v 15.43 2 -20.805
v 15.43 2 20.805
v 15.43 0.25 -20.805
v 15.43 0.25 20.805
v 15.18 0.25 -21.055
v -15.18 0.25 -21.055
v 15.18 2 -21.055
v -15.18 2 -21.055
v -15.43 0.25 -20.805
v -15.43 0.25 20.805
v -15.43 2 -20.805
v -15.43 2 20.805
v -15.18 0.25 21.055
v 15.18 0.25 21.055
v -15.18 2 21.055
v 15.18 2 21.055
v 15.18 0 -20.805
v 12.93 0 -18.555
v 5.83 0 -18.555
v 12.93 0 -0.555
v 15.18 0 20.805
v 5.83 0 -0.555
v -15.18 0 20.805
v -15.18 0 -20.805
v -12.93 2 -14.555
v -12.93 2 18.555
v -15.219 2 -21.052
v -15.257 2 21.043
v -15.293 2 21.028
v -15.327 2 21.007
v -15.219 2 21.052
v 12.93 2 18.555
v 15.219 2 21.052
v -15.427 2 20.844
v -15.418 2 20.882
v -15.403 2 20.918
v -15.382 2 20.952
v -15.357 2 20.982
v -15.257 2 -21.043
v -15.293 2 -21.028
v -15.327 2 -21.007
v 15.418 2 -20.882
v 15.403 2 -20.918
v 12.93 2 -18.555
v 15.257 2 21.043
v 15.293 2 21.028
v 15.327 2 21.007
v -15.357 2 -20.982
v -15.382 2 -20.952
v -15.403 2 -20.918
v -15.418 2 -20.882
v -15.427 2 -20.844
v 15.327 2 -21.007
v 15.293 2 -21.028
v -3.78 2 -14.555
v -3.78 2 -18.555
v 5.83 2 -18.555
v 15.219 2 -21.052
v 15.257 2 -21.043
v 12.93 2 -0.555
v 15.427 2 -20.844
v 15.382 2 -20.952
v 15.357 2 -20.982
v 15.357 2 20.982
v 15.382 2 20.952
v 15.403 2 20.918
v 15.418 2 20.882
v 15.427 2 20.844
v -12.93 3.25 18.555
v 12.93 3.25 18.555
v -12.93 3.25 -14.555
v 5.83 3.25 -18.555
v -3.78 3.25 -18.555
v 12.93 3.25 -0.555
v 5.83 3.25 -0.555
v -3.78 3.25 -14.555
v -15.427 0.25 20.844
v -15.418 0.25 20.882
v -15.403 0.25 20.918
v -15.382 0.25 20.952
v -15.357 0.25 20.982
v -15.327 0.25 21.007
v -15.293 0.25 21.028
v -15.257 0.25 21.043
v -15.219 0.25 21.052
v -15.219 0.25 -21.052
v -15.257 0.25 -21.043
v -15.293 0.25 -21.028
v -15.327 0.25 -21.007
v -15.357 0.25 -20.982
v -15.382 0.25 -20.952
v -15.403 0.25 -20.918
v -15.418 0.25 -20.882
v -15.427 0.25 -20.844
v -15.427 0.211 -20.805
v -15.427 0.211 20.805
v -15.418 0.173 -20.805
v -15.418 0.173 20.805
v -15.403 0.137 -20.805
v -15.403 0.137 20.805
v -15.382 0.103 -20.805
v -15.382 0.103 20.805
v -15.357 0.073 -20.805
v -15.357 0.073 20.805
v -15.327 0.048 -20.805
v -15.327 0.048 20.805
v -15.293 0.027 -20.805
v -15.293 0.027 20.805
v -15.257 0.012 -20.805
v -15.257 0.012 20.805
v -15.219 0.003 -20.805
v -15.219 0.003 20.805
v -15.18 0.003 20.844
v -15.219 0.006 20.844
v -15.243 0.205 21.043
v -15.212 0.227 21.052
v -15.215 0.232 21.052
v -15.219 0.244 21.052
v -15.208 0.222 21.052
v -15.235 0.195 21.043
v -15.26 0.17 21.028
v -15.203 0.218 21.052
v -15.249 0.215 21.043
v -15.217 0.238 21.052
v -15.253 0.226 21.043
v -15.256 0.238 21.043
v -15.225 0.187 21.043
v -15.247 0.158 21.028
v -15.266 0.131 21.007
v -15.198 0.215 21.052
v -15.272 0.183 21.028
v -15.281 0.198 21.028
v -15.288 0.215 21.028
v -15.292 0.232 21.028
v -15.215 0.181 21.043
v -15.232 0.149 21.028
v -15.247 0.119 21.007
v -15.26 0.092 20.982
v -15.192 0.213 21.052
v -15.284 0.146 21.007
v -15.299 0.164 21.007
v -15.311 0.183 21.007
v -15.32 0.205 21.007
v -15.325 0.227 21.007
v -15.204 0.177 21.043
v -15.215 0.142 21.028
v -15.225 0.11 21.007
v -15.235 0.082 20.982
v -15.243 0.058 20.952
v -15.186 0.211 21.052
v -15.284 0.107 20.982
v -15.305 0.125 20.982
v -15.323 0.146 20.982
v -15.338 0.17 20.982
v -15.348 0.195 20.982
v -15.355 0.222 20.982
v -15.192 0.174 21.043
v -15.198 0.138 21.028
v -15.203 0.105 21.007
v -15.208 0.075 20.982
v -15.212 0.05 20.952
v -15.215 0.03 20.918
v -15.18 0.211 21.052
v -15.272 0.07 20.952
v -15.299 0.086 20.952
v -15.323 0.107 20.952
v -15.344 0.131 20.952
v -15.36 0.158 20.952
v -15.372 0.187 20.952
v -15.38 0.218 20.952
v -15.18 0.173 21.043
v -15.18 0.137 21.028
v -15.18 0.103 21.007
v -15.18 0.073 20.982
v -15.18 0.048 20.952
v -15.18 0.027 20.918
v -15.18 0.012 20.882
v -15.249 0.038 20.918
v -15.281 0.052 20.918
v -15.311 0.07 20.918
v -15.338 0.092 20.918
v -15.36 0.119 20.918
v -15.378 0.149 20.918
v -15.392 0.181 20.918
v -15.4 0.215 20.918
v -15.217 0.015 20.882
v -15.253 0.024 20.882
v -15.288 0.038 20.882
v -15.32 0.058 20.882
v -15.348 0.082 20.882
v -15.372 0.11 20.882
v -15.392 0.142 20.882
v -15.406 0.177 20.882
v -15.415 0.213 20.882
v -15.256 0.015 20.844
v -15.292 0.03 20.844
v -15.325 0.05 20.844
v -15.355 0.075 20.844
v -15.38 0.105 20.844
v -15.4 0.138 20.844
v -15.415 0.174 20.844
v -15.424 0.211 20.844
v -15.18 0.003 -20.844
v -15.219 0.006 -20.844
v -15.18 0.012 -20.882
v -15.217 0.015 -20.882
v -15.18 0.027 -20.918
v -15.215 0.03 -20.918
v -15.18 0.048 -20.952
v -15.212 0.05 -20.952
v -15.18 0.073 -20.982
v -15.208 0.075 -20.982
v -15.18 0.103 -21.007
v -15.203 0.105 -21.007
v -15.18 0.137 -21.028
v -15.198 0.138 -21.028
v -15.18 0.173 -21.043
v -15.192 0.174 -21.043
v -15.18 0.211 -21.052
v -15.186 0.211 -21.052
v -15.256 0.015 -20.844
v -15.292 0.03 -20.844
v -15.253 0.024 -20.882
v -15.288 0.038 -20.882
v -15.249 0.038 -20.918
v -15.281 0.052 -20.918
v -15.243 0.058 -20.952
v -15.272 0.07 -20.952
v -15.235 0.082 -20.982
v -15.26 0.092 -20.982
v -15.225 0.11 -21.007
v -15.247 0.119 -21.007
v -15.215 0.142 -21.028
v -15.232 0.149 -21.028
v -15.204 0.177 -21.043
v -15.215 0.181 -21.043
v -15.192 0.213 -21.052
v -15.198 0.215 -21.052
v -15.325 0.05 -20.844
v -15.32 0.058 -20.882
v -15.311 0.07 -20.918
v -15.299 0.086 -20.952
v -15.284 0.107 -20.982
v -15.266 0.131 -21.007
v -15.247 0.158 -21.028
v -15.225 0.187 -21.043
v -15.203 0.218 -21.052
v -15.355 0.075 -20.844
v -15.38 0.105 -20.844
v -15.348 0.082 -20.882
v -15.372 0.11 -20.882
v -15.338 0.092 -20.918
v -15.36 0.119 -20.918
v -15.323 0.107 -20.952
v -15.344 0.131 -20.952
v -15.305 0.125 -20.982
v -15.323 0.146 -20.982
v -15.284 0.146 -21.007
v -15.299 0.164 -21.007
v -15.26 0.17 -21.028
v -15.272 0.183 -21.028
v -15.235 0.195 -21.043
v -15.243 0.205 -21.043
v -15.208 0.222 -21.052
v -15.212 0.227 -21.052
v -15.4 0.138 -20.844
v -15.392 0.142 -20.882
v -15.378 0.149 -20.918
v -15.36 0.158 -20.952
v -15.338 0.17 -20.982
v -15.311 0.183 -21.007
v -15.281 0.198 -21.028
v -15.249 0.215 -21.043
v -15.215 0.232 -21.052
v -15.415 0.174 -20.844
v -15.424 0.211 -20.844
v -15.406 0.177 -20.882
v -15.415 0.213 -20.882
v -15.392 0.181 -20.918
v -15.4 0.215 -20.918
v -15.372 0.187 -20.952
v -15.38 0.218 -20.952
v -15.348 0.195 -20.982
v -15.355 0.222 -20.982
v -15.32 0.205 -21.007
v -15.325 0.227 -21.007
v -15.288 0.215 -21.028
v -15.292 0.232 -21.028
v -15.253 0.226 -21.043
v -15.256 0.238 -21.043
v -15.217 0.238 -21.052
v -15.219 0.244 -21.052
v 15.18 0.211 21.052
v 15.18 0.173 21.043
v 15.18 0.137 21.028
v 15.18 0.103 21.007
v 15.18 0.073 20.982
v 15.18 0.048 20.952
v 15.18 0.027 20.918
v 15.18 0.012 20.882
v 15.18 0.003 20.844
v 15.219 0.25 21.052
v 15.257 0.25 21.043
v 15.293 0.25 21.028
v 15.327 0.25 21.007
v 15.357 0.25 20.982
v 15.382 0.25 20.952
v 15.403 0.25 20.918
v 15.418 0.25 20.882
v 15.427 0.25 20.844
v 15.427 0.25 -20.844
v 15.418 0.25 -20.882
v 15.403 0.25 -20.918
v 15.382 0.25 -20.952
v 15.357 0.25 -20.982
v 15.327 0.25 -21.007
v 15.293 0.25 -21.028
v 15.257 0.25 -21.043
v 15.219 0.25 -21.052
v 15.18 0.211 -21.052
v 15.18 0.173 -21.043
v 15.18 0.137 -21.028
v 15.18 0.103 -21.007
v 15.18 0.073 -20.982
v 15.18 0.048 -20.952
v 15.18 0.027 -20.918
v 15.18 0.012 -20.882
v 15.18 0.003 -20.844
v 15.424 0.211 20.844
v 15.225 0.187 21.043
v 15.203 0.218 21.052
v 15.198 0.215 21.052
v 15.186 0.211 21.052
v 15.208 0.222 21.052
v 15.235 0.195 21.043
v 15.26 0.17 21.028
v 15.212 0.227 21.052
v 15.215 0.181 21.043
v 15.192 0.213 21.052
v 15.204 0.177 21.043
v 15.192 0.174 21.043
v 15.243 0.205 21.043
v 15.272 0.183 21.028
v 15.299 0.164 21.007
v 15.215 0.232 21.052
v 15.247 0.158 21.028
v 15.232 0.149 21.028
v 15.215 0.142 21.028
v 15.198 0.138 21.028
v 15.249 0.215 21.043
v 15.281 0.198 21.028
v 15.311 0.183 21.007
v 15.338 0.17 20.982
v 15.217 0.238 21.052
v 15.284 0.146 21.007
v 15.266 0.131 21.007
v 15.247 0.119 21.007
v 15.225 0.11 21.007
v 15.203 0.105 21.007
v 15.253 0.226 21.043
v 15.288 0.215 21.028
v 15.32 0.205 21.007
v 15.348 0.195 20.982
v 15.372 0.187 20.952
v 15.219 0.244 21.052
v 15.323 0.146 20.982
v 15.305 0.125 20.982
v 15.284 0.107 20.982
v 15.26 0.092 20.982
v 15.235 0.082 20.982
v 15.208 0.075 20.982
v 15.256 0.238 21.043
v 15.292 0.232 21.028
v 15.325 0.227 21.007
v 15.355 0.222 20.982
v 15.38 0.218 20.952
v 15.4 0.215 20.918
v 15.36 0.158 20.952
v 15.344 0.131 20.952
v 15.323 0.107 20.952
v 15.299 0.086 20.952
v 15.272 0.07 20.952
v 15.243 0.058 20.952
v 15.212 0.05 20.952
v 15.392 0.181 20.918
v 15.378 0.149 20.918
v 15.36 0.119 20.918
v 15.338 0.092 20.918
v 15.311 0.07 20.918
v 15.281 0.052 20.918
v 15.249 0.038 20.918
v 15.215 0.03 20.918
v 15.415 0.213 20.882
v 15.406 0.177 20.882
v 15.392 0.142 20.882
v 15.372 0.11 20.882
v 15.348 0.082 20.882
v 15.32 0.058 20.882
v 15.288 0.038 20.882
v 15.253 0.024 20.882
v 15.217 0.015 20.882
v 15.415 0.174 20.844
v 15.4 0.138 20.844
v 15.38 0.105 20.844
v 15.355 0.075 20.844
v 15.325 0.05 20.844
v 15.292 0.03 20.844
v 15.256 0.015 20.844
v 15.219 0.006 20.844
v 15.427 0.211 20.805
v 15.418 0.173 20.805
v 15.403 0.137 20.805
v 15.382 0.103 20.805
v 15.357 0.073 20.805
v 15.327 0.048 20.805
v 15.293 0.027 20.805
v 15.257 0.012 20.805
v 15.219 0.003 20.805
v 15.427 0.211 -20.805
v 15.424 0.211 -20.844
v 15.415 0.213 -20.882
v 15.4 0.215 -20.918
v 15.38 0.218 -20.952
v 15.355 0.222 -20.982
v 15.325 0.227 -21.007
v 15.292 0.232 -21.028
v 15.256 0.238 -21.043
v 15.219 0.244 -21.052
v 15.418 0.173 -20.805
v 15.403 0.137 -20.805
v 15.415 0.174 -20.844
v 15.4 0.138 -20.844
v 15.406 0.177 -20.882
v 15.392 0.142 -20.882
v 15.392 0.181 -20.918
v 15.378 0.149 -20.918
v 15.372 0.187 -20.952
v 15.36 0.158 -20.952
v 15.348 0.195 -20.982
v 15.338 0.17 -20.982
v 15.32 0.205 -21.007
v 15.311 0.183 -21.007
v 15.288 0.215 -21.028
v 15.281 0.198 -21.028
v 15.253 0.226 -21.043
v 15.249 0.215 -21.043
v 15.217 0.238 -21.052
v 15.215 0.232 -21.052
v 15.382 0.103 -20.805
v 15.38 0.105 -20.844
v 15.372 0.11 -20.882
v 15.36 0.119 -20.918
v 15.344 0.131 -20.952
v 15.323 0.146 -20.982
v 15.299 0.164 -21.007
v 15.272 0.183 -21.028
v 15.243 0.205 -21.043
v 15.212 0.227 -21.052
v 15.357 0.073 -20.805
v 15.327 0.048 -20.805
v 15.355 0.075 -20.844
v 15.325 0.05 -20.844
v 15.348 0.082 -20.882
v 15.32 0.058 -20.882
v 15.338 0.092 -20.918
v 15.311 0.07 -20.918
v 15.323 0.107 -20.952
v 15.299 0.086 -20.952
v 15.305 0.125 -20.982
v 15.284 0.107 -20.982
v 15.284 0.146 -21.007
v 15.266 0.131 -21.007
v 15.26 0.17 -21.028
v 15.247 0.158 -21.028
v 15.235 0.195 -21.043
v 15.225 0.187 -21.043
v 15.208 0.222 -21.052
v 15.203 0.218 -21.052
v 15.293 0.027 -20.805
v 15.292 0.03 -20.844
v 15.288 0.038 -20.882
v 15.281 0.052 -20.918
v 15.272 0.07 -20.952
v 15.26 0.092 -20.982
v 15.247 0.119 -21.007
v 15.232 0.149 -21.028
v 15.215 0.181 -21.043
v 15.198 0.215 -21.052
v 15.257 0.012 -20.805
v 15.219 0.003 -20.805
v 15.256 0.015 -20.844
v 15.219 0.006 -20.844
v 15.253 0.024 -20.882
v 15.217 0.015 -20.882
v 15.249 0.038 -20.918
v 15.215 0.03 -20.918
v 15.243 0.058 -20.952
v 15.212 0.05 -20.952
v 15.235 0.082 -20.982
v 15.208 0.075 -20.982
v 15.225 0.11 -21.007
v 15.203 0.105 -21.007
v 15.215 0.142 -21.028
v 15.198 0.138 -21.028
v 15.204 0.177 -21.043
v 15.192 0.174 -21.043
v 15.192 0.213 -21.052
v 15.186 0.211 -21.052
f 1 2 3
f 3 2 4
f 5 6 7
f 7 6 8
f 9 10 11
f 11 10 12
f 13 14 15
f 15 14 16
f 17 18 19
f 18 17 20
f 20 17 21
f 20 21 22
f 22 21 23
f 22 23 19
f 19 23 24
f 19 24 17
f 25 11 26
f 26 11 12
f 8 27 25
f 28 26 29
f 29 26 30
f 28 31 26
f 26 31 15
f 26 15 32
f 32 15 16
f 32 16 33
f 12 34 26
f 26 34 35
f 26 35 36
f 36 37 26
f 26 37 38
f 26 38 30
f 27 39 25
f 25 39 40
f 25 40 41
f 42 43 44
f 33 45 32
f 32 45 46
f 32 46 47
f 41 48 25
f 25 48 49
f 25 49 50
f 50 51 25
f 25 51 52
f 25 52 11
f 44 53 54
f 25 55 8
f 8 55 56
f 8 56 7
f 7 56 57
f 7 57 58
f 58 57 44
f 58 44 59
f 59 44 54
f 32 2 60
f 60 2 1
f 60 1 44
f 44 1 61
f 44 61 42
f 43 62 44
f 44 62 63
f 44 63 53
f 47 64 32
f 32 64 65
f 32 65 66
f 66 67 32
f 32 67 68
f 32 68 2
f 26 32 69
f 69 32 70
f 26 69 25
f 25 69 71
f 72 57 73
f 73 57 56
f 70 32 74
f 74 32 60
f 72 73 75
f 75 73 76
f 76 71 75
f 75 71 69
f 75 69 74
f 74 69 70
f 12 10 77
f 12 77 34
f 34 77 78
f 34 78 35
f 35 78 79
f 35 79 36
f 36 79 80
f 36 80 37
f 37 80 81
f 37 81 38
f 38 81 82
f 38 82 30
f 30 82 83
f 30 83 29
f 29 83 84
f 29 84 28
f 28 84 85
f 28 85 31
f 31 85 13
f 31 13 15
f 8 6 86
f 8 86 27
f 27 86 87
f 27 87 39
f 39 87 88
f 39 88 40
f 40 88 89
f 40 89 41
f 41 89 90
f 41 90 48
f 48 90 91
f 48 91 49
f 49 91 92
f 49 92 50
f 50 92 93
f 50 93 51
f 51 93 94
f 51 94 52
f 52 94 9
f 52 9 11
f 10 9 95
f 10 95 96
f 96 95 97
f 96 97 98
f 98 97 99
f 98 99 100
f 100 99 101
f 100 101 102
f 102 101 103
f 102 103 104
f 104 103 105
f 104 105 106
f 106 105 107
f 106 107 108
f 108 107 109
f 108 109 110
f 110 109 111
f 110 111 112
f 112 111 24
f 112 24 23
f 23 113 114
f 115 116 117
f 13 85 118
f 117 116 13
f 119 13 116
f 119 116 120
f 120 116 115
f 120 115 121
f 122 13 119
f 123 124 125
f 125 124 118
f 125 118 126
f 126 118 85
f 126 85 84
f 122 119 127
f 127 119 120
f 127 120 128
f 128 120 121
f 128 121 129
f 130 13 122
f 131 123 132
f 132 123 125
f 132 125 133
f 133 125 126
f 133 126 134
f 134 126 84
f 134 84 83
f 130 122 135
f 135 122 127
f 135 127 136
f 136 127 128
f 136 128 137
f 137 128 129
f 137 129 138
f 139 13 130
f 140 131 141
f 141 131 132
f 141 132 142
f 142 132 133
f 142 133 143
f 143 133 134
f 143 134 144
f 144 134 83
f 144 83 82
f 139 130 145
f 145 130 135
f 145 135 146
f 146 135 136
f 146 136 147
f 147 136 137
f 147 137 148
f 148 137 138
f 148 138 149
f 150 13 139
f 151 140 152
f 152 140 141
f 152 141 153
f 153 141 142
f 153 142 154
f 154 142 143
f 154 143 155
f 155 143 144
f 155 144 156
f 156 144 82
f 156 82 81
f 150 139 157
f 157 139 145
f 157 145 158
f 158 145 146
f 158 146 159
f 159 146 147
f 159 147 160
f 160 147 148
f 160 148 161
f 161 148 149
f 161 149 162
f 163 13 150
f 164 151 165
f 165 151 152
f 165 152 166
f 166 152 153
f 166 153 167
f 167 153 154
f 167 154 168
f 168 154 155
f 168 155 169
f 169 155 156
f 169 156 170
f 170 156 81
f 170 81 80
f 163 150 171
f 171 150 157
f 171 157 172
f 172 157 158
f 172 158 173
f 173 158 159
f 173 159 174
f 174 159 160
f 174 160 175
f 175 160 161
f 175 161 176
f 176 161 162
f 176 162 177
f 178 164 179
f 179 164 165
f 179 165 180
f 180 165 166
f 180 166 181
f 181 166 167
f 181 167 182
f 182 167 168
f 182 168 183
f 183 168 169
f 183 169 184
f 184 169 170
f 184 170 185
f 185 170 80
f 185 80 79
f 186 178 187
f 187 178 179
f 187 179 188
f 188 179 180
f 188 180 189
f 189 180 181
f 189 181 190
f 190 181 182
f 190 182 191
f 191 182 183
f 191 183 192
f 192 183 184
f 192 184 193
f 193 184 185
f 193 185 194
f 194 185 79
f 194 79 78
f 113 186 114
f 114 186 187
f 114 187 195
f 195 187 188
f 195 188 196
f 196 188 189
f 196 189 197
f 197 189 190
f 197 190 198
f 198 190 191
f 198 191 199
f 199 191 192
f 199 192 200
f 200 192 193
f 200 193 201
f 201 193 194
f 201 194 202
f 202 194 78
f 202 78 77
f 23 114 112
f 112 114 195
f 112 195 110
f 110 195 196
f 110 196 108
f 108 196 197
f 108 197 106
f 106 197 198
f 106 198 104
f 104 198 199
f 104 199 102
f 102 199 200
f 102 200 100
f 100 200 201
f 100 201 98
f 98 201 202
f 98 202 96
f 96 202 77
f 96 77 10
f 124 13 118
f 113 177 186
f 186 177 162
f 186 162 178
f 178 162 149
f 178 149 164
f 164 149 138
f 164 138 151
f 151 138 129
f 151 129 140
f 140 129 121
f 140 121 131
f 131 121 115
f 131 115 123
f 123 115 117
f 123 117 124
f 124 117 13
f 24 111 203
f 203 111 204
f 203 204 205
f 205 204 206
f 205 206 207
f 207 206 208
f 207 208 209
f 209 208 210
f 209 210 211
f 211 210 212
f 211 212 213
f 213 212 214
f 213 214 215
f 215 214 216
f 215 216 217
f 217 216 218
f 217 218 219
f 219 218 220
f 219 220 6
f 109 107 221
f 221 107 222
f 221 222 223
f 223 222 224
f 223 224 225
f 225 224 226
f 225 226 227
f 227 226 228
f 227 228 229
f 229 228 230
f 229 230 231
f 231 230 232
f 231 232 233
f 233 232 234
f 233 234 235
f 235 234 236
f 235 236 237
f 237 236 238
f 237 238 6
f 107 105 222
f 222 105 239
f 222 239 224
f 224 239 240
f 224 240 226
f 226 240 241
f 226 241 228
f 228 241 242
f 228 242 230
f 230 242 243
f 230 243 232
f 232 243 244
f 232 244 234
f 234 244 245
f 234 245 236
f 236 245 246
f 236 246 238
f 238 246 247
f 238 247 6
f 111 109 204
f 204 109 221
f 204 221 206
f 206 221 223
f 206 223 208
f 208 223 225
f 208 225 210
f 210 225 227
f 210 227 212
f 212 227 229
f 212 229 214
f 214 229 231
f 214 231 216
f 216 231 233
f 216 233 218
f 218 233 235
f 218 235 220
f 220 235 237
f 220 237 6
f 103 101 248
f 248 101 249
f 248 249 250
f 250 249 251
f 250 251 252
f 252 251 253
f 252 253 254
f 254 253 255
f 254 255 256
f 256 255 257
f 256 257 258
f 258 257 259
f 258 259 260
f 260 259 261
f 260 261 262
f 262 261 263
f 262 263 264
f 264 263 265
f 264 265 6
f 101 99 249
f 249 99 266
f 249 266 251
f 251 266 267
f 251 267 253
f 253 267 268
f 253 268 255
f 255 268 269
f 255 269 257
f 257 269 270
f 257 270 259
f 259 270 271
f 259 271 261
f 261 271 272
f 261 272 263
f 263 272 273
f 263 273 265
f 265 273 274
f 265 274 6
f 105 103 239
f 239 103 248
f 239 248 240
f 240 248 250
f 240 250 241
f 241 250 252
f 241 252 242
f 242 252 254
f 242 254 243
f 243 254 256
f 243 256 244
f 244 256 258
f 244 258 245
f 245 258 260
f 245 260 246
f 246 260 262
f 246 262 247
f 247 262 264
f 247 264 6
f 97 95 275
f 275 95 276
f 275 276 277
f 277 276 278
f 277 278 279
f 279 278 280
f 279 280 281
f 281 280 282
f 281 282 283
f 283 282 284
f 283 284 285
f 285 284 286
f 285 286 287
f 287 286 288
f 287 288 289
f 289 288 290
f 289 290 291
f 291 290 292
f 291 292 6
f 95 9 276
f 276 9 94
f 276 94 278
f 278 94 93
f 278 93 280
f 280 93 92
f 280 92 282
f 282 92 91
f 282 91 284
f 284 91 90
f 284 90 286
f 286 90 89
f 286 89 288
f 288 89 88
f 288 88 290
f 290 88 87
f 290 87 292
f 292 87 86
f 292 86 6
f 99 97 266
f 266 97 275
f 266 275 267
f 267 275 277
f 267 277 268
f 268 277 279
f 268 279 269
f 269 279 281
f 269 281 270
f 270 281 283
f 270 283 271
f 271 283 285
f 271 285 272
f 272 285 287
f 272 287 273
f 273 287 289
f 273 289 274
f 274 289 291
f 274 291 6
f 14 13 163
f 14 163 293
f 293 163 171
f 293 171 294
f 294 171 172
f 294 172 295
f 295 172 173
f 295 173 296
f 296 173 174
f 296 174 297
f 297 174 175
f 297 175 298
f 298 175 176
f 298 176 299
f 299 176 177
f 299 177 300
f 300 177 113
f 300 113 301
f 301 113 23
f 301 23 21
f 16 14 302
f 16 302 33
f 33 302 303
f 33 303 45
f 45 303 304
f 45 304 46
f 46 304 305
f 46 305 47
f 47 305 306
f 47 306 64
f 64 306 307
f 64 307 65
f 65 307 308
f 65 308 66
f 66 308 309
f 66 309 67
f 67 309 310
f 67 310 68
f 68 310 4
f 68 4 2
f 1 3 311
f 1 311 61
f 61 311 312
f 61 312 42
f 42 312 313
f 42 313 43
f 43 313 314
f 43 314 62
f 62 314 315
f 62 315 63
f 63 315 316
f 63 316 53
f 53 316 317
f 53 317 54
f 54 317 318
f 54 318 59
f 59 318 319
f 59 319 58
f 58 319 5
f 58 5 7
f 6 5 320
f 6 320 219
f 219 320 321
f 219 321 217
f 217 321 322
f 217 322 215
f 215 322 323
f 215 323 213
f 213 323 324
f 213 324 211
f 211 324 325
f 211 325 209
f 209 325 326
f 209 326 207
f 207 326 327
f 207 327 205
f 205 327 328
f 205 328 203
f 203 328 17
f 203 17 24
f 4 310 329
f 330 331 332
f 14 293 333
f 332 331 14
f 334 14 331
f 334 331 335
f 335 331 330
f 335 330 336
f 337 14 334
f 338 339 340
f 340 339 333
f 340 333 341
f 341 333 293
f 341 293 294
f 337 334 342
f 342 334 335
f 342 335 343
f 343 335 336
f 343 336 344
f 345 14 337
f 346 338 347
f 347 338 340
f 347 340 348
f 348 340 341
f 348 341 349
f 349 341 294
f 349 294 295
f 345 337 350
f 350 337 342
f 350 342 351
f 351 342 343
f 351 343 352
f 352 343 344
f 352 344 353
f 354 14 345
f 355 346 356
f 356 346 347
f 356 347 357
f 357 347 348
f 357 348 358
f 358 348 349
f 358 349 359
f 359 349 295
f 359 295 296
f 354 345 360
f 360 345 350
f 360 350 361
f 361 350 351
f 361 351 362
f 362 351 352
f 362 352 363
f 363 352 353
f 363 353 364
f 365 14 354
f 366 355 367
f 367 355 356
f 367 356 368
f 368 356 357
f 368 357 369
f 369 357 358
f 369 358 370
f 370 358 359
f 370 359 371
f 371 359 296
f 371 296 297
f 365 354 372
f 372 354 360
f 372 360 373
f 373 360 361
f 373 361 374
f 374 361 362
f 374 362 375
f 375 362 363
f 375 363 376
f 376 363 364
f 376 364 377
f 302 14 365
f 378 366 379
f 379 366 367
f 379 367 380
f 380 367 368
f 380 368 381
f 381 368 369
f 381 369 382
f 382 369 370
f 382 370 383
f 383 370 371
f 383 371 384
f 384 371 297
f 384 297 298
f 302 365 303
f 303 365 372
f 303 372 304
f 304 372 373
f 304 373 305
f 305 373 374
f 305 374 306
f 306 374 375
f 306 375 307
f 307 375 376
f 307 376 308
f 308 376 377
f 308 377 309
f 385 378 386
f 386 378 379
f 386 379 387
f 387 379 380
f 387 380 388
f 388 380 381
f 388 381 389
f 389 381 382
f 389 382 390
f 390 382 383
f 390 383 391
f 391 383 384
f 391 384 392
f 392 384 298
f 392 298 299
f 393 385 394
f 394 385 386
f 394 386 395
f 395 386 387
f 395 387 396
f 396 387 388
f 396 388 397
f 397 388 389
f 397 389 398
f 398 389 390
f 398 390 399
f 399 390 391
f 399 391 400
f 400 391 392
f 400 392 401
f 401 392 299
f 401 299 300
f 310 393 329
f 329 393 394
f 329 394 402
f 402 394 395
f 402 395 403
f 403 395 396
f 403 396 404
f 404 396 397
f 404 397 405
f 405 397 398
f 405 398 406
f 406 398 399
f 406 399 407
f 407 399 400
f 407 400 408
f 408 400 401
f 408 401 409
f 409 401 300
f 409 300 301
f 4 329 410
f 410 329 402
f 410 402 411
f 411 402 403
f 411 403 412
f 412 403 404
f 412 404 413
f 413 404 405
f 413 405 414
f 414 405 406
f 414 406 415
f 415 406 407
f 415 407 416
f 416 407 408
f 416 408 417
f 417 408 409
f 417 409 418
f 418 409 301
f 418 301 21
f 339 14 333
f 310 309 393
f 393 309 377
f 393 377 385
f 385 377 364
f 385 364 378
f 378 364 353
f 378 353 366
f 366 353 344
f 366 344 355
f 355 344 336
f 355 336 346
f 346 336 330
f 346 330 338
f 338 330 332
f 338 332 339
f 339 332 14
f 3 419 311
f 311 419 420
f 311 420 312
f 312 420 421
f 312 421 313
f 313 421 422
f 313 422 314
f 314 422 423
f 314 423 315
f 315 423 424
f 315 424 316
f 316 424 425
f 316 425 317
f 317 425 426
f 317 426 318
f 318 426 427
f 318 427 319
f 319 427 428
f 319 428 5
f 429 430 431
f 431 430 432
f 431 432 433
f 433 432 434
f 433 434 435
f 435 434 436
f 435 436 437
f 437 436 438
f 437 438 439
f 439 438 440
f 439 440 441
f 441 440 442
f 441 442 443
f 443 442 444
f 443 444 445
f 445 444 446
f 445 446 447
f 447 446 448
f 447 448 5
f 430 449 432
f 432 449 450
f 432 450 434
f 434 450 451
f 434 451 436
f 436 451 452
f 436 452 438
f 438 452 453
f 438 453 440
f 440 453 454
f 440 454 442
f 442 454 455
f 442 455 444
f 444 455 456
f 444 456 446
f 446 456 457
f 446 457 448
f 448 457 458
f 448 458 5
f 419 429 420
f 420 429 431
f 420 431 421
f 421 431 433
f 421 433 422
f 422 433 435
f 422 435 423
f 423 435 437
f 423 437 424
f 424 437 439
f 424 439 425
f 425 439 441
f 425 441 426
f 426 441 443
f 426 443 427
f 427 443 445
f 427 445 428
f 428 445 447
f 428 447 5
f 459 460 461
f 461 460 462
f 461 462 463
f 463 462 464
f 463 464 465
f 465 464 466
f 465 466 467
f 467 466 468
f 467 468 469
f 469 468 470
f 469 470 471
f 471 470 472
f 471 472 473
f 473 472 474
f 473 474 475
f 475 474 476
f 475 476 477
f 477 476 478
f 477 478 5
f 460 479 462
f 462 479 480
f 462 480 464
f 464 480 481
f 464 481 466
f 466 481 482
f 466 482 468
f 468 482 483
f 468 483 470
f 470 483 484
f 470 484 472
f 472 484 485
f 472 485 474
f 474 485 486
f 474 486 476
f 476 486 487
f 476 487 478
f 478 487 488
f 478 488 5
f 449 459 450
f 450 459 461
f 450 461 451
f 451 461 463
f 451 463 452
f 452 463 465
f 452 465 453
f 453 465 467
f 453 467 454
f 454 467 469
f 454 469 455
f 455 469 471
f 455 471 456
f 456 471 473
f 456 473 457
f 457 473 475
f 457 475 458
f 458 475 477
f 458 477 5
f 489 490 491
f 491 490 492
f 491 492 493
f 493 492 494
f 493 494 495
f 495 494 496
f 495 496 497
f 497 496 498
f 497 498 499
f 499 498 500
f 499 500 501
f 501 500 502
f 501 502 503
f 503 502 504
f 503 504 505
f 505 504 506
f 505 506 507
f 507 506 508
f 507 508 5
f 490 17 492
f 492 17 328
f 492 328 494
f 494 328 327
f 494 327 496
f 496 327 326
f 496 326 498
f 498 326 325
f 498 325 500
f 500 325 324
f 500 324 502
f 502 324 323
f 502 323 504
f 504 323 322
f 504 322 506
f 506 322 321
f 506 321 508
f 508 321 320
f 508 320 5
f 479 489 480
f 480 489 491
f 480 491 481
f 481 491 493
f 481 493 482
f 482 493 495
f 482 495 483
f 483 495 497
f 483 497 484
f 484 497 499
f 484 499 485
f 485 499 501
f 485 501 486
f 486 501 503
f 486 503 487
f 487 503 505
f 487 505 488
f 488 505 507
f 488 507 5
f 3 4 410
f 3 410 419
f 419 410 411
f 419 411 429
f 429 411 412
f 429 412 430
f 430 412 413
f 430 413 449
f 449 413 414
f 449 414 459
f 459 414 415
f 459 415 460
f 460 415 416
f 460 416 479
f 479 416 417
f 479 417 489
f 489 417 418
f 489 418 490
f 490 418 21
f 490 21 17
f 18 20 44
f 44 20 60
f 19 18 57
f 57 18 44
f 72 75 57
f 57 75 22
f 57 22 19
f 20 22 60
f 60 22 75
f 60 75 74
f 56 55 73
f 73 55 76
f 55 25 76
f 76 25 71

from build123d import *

# Parameters (mm, degrees)
SKETCH1_W           = 30.86
SKETCH1_H           = 42.11
BOSS_EXTRUDE1_DEPTH = 3.25
SKETCH2_OUTSIDE_W   = 43.322
SKETCH2_OUTSIDE_H   = 54.572
SKETCH2_OUTSIDE_W_2 = 25.86
SKETCH2_OUTSIDE_H_2 = 37.11
CUT_EXTRUDE1_DEPTH  = 1.25
FILLET1_R           = 0.25
SKETCH4_W           = 7.1
SKETCH4_H           = 18
CUT_EXTRUDE3_DEPTH  = 27.305140657
SKETCH5_W           = 9.15
SKETCH5_H           = 4
CUT_EXTRUDE4_DEPTH  = 1.25


with BuildPart() as part:
    # Sketch1 → Boss-Extrude1 (new body)
    with BuildSketch(Plane(origin=(0, 0, 0), x_dir=(1, 0, 0), z_dir=(0, 1, 0))):
        Rectangle(SKETCH1_W, SKETCH1_H)
    extrude(amount=BOSS_EXTRUDE1_DEPTH)

    # Sketch2 outside → Cut-Extrude1 (cut)
    with BuildSketch(Plane(origin=(0, 3.25, 0), x_dir=(1, 0, 0), z_dir=(0, 1, 0))):
        Rectangle(SKETCH2_OUTSIDE_W, SKETCH2_OUTSIDE_H)
        Rectangle(SKETCH2_OUTSIDE_W_2, SKETCH2_OUTSIDE_H_2, mode=Mode.SUBTRACT)
    extrude(amount=-CUT_EXTRUDE1_DEPTH, mode=Mode.SUBTRACT)

    # Fillet1
    fillet1_edges = [part.edges().sort_by_distance(p)[0] for p in [
        (15.43, 1, 21.055),
        (-15.43, 1, 21.055),
        (-15.43, 1, -21.055),
        (15.43, 1, -21.055),
        (0, 0, 21.055),
        (-15.43, 0, 0),
        (0, 0, -21.055),
        (15.43, 0, 0),
    ]]
    fillet(fillet1_edges, radius=FILLET1_R)

    # Sketch4 → Cut-Extrude3 (cut, through all)
    with BuildSketch(Plane(origin=(0, 0, 0), x_dir=(-1, 0, 0), z_dir=(0, -1, 0))):
        with Locations((-9.38, 9.555)):
            Rectangle(SKETCH4_W, SKETCH4_H)
    extrude(amount=-CUT_EXTRUDE3_DEPTH, mode=Mode.SUBTRACT)

    # Sketch5 → Cut-Extrude4 (cut)
    with BuildSketch(Plane(origin=(0, 3.25, 0), x_dir=(1, 0, 0), z_dir=(0, 1, 0))):
        with Locations((-8.355, 16.555)):
            Rectangle(SKETCH5_W, SKETCH5_H)
    extrude(amount=-CUT_EXTRUDE4_DEPTH, mode=Mode.SUBTRACT)


solid = part.part
